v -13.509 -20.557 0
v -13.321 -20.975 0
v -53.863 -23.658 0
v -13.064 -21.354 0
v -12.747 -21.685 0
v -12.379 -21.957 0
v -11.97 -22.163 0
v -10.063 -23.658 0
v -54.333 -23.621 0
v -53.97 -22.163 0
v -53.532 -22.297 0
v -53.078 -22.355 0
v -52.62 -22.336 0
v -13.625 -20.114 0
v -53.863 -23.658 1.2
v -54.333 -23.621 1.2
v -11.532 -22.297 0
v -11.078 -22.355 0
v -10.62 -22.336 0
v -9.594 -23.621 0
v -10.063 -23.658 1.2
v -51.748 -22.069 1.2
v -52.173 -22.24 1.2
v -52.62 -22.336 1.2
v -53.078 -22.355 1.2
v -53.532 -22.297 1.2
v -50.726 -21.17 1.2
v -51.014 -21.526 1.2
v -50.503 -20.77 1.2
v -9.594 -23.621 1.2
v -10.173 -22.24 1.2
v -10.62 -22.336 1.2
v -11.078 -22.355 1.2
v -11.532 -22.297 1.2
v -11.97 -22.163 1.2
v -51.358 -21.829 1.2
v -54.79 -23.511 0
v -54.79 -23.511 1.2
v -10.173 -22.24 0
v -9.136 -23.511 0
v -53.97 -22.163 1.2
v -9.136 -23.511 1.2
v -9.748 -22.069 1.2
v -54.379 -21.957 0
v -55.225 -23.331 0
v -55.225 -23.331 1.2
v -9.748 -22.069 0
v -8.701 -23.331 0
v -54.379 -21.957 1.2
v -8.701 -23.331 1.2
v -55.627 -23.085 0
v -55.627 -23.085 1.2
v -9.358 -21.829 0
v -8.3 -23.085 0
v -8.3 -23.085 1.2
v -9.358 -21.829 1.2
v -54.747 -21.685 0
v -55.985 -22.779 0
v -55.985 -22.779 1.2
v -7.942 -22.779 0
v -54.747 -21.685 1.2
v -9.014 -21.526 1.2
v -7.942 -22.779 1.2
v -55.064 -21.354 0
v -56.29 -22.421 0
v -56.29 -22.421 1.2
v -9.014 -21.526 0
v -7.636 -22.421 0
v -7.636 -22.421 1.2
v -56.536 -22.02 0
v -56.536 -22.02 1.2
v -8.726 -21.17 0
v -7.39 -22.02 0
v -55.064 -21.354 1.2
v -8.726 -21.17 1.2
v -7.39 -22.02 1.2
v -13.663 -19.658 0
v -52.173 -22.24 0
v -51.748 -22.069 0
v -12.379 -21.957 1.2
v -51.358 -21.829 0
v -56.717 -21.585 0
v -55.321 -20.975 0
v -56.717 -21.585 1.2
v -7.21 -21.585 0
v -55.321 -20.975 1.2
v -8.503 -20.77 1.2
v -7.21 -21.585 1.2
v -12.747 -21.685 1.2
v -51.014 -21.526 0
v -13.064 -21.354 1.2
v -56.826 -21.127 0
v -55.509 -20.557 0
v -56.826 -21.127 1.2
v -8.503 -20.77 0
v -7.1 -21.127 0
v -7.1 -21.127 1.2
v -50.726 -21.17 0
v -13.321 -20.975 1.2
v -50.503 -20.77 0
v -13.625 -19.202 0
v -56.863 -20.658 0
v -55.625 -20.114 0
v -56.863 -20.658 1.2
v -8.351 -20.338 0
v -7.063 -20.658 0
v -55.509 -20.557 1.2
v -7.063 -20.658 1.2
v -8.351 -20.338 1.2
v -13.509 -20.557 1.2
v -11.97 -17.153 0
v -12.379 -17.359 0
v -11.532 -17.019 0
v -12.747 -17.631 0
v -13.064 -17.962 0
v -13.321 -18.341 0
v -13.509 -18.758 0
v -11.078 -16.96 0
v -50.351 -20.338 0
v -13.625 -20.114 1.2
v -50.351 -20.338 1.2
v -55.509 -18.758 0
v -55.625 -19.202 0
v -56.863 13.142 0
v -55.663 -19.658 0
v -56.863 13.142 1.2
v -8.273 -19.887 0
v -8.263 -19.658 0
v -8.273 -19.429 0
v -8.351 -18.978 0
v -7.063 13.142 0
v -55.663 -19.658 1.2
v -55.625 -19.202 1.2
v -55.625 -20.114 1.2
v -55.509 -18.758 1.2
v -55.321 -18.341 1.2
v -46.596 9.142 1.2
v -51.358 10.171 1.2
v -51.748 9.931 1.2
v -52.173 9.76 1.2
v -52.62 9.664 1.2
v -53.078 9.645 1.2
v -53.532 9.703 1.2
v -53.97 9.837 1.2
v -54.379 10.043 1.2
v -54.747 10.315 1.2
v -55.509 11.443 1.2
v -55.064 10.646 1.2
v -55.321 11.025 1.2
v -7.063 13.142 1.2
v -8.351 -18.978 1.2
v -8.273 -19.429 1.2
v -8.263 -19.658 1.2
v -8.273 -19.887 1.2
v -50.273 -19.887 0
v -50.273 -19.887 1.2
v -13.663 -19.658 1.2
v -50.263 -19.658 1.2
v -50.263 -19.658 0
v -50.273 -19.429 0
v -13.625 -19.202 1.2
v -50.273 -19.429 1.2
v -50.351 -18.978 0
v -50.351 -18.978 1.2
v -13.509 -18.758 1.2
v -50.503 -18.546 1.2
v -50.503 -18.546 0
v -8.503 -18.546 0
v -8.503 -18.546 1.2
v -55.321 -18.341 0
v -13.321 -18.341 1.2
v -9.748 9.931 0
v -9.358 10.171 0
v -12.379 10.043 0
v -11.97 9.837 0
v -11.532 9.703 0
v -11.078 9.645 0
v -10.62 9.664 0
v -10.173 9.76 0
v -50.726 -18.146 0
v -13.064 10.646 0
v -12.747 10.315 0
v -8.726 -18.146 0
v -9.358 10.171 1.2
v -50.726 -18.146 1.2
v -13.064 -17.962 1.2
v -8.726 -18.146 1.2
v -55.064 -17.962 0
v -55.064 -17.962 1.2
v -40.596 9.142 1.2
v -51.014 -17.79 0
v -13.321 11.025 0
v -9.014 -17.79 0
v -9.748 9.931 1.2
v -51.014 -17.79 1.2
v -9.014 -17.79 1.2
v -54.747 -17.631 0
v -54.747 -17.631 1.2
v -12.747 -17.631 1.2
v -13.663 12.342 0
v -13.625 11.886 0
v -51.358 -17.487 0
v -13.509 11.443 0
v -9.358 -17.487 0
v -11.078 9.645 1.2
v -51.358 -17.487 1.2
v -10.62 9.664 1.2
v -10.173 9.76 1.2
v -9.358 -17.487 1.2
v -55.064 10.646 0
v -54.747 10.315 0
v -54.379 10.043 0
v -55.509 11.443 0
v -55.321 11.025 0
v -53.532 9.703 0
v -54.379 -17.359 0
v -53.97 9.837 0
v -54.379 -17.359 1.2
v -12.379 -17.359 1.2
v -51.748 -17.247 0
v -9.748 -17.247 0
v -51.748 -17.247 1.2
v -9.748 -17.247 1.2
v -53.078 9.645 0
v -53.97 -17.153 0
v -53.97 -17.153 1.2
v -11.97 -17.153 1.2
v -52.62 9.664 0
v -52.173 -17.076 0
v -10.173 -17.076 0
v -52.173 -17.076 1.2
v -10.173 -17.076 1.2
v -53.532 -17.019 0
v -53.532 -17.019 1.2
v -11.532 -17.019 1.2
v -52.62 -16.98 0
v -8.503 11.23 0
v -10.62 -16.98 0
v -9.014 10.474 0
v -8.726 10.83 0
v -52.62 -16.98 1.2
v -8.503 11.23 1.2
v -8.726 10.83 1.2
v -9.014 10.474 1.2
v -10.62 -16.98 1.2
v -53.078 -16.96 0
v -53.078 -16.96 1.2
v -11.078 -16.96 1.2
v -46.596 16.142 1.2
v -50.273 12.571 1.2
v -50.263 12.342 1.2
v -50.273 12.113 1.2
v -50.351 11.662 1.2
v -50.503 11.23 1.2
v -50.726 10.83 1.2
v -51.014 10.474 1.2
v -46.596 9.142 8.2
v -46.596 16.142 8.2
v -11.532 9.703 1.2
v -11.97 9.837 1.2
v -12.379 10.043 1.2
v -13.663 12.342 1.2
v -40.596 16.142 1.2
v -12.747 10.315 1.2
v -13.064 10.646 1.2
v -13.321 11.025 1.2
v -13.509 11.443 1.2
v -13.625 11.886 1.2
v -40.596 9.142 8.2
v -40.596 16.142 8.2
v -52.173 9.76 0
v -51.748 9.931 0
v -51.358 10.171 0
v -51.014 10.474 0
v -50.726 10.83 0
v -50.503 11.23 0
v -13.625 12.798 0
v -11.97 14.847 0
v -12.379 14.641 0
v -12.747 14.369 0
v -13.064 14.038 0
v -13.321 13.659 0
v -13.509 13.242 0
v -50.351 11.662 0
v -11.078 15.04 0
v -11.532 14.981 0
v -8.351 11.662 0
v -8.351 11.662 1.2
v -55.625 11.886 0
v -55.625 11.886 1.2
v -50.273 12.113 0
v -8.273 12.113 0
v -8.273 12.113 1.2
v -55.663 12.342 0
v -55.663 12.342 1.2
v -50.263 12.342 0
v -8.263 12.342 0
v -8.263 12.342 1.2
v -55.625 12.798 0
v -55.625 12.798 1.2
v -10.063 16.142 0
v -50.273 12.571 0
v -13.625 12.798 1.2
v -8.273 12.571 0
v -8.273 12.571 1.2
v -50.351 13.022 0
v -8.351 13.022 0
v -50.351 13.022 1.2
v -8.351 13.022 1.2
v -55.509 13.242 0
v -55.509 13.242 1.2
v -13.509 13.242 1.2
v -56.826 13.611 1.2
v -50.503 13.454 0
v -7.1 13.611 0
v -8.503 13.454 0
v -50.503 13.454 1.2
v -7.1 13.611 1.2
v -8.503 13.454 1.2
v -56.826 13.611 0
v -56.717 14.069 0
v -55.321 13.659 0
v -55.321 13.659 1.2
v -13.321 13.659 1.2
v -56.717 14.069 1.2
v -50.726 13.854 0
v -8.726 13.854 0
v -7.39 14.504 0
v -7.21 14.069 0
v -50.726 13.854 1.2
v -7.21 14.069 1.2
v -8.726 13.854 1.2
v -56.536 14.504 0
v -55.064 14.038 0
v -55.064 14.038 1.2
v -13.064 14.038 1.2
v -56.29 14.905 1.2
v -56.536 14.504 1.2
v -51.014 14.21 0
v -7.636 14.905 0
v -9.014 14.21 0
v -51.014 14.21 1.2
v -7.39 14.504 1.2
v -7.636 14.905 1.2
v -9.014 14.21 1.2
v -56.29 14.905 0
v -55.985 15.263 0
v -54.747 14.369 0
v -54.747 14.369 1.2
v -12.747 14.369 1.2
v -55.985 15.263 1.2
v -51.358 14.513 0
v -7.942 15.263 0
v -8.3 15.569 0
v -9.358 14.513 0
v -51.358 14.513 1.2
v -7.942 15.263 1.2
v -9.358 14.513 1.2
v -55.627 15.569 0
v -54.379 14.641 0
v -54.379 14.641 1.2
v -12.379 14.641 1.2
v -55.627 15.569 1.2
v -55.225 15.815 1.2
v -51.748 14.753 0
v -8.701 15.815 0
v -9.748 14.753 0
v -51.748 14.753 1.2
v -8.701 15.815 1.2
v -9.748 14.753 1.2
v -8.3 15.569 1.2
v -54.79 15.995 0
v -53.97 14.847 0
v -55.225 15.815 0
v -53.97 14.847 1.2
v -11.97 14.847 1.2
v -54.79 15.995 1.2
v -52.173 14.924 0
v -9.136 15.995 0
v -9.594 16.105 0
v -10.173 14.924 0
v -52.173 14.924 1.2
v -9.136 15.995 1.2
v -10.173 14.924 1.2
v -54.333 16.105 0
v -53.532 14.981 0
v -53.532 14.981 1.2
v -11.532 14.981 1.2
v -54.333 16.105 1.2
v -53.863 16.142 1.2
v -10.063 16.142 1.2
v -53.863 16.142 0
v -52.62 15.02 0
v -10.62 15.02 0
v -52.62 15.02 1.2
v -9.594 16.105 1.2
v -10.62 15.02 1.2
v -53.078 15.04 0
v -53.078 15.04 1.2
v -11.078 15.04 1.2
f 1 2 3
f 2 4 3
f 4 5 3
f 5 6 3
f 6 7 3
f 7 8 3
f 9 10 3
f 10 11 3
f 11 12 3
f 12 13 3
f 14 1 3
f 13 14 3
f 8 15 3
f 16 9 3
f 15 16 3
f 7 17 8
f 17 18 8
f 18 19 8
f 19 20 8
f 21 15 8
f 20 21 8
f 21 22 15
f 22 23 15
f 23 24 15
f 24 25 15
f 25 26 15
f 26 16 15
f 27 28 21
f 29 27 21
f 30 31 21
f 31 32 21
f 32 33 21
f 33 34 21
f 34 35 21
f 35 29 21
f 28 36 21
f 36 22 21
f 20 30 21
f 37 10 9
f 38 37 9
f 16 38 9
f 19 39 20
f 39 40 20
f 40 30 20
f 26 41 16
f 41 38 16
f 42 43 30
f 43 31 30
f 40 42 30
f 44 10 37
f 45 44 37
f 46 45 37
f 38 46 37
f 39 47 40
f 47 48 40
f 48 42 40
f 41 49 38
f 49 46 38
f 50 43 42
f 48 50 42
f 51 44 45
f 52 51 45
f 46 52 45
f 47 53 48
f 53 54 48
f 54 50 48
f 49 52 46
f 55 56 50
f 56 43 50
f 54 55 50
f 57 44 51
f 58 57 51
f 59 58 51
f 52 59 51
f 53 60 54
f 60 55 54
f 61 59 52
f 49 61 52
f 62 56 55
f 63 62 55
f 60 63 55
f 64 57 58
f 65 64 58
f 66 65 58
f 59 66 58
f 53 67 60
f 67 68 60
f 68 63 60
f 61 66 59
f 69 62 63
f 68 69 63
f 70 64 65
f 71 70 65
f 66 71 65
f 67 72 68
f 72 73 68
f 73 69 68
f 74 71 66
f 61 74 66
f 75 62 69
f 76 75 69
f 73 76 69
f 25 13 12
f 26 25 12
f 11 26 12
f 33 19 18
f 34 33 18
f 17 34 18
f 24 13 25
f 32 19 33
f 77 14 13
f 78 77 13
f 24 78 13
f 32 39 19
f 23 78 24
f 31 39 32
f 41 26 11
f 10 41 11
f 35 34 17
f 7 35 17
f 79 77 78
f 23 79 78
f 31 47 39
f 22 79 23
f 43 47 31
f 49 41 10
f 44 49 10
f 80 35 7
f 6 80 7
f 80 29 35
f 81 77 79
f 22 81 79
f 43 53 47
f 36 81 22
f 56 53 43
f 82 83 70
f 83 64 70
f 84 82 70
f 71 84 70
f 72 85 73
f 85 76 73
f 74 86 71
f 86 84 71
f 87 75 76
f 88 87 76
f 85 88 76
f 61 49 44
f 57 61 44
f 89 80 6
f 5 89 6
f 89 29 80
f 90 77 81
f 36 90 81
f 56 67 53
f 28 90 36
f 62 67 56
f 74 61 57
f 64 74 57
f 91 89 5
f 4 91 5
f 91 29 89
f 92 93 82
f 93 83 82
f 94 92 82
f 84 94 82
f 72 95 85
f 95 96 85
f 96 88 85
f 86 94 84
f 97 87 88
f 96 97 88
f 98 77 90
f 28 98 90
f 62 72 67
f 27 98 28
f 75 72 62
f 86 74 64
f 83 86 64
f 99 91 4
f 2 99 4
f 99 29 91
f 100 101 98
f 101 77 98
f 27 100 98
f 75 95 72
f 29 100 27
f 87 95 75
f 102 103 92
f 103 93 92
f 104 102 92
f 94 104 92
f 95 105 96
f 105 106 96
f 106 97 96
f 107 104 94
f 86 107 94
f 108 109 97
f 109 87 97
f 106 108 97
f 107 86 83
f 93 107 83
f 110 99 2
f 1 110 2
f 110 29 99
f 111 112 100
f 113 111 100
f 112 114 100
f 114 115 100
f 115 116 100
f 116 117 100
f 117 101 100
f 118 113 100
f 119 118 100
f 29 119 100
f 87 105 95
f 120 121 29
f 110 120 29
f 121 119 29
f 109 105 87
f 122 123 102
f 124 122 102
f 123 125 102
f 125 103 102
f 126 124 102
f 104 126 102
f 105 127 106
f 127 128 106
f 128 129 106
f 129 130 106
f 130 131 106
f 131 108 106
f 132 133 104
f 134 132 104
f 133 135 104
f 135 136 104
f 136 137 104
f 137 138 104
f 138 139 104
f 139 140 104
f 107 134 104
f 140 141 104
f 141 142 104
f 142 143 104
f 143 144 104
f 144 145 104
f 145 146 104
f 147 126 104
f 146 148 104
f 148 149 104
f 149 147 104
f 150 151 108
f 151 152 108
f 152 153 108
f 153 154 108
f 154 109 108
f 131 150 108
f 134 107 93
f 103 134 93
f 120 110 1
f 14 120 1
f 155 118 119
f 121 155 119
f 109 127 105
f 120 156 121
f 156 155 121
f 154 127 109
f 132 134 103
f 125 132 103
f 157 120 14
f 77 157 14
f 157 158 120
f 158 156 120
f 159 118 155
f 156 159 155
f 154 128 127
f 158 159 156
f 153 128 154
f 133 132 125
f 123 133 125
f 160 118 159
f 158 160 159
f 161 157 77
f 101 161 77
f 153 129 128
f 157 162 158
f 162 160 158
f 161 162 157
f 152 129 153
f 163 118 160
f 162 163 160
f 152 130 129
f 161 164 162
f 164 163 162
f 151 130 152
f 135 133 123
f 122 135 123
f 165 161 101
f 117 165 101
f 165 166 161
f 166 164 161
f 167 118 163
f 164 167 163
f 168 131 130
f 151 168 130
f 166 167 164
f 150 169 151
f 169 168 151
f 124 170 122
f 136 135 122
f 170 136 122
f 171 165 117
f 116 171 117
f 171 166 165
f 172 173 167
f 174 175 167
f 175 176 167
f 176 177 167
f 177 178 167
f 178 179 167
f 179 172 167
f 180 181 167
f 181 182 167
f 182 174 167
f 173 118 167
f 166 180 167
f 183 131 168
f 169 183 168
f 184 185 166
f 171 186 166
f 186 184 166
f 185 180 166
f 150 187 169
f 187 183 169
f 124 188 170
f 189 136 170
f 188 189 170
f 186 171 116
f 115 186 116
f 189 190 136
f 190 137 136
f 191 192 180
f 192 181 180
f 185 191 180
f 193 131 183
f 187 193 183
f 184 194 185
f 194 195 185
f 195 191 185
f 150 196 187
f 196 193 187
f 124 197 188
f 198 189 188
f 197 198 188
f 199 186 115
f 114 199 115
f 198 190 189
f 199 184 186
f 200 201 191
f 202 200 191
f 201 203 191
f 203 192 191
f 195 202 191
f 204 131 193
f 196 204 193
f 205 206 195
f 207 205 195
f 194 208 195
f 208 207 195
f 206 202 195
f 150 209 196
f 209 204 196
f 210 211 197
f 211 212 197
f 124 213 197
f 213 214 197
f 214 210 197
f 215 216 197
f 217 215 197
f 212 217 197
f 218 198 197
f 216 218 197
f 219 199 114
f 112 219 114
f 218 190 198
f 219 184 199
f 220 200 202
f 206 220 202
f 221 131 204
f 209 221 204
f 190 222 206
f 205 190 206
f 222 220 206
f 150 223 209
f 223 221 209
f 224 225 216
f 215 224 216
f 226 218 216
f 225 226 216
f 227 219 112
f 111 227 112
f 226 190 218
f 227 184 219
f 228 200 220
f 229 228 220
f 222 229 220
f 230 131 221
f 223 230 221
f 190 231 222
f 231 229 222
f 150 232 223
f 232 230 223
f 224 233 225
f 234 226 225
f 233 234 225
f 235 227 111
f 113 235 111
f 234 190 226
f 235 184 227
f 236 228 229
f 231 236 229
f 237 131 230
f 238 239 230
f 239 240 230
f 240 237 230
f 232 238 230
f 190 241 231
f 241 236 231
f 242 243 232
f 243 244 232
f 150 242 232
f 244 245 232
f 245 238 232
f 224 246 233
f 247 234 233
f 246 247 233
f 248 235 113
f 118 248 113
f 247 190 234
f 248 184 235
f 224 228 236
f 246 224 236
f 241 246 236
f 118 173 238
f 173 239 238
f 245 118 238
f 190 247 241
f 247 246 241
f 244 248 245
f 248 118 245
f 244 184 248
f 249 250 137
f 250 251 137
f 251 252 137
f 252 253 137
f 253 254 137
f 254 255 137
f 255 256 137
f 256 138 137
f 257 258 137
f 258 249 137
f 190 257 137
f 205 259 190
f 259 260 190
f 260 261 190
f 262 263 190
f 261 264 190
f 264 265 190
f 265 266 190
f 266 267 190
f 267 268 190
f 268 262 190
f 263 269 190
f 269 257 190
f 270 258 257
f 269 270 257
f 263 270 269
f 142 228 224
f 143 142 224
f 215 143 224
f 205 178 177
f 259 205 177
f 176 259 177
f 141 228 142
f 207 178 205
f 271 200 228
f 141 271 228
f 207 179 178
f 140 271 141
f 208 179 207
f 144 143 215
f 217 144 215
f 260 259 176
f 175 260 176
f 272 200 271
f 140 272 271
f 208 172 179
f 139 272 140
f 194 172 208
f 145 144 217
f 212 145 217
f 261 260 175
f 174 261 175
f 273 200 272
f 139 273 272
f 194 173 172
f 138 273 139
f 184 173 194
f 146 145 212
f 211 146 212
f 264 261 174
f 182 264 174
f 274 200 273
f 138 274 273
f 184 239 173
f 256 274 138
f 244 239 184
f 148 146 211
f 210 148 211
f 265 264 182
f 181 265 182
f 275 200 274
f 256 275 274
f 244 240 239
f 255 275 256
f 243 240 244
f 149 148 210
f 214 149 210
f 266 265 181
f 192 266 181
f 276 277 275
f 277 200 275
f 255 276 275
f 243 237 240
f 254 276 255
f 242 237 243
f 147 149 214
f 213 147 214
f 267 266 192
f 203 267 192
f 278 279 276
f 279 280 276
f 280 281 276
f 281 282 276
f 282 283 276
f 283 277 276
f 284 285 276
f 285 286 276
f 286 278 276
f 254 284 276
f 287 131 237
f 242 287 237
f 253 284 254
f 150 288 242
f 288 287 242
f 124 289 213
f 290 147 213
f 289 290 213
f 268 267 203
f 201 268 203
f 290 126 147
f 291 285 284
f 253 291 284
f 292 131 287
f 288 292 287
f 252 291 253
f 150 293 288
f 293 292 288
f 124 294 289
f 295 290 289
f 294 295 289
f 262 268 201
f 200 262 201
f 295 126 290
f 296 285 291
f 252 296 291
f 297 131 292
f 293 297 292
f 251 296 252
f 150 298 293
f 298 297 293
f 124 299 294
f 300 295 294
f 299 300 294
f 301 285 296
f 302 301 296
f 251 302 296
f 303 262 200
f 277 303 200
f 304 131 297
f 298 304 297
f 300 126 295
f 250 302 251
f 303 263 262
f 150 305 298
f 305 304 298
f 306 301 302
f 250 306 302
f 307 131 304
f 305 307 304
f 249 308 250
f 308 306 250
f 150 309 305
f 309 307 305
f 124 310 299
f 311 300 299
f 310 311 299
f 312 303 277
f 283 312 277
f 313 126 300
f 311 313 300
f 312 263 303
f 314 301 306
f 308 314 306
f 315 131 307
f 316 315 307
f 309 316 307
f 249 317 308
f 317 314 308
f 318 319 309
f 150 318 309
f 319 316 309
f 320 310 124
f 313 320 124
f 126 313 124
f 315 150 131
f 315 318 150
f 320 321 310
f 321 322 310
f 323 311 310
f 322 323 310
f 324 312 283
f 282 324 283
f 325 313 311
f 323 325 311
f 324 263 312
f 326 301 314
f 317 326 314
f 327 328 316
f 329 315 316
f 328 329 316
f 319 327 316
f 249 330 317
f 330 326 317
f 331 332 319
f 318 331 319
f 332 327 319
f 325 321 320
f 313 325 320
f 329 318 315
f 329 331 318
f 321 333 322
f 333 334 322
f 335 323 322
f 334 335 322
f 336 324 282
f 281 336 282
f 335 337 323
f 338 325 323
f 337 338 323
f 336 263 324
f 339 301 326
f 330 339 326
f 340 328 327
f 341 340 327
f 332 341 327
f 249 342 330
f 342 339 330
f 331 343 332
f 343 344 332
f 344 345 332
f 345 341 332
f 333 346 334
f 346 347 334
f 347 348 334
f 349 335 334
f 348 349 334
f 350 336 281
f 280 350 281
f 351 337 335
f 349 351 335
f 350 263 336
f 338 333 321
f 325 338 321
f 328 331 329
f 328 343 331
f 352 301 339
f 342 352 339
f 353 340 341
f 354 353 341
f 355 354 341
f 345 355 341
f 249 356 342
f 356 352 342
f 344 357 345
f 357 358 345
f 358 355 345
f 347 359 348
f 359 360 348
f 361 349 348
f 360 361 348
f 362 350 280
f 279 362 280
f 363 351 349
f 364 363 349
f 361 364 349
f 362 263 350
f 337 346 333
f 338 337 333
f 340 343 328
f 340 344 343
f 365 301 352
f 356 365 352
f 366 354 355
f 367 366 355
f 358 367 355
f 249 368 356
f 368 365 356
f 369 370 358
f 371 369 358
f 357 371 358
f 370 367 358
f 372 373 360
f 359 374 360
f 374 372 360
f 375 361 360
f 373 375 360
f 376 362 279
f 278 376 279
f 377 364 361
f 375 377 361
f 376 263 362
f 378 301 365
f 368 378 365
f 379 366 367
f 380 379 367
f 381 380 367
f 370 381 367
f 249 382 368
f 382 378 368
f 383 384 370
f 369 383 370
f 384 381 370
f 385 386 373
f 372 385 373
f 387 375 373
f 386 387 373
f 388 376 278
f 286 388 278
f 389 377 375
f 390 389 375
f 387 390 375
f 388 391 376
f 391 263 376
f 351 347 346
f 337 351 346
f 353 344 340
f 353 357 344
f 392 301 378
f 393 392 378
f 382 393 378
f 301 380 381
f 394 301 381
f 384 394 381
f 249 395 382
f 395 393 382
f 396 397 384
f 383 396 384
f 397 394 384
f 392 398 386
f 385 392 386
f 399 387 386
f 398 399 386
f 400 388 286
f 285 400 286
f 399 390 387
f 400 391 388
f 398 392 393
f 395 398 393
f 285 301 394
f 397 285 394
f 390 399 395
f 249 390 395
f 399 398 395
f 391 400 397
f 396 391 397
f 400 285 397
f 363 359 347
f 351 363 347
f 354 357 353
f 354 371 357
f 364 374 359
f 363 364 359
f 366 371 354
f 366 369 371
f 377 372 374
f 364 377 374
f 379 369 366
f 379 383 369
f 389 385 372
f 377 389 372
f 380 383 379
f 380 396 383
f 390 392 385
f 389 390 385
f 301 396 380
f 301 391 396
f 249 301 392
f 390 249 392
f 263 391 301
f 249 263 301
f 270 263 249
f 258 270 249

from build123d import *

# Parameters (mm, degrees)
CROQUIS1_W              = 49.8
CROQUIS1_H              = 39.8
CROQUIS1_R              = 2.7
SALIENTE_EXTRUIR1_DEPTH = 1.2
REDONDEO1_R             = 3
CROQUIS2_W              = 6
CROQUIS2_H              = 7
SALIENTE_EXTRUIR2_DEPTH = 7


with BuildPart() as part:
    # Croquis1 → Saliente-Extruir1 (new body)
    with BuildSketch(Plane.XY):
        with Locations((-31.963412372, -3.757931034)):
            Rectangle(CROQUIS1_W, CROQUIS1_H)
        with Locations((-52.963412372, 12.342068966)):
            Circle(CROQUIS1_R, mode=Mode.SUBTRACT)
        with Locations((-10.963412372, 12.342068966)):
            Circle(CROQUIS1_R, mode=Mode.SUBTRACT)
        with Locations((-10.963412372, -19.657931034)):
            Circle(CROQUIS1_R, mode=Mode.SUBTRACT)
        with Locations((-52.963412372, -19.657931034)):
            Circle(CROQUIS1_R, mode=Mode.SUBTRACT)
    extrude(amount=SALIENTE_EXTRUIR1_DEPTH)

    # Redondeo1
    redondeo1_edges = [part.edges().sort_by_distance(p)[0] for p in [
        (-56.863412372, 16.142068966, 0.6),
        (-7.063412372, 16.142068966, 0.6),
        (-7.063412372, -23.657931034, 0.6),
        (-56.863412372, -23.657931034, 0.6),
    ]]
    fillet(redondeo1_edges, radius=REDONDEO1_R)

    # Croquis2 → Saliente-Extruir2 (add)
    with BuildSketch(Plane.XY.offset(1.2)):
        with Locations((-43.595564528, 12.642068966)):
            Rectangle(CROQUIS2_W, CROQUIS2_H)
    extrude(amount=SALIENTE_EXTRUIR2_DEPTH)


solid = part.part
